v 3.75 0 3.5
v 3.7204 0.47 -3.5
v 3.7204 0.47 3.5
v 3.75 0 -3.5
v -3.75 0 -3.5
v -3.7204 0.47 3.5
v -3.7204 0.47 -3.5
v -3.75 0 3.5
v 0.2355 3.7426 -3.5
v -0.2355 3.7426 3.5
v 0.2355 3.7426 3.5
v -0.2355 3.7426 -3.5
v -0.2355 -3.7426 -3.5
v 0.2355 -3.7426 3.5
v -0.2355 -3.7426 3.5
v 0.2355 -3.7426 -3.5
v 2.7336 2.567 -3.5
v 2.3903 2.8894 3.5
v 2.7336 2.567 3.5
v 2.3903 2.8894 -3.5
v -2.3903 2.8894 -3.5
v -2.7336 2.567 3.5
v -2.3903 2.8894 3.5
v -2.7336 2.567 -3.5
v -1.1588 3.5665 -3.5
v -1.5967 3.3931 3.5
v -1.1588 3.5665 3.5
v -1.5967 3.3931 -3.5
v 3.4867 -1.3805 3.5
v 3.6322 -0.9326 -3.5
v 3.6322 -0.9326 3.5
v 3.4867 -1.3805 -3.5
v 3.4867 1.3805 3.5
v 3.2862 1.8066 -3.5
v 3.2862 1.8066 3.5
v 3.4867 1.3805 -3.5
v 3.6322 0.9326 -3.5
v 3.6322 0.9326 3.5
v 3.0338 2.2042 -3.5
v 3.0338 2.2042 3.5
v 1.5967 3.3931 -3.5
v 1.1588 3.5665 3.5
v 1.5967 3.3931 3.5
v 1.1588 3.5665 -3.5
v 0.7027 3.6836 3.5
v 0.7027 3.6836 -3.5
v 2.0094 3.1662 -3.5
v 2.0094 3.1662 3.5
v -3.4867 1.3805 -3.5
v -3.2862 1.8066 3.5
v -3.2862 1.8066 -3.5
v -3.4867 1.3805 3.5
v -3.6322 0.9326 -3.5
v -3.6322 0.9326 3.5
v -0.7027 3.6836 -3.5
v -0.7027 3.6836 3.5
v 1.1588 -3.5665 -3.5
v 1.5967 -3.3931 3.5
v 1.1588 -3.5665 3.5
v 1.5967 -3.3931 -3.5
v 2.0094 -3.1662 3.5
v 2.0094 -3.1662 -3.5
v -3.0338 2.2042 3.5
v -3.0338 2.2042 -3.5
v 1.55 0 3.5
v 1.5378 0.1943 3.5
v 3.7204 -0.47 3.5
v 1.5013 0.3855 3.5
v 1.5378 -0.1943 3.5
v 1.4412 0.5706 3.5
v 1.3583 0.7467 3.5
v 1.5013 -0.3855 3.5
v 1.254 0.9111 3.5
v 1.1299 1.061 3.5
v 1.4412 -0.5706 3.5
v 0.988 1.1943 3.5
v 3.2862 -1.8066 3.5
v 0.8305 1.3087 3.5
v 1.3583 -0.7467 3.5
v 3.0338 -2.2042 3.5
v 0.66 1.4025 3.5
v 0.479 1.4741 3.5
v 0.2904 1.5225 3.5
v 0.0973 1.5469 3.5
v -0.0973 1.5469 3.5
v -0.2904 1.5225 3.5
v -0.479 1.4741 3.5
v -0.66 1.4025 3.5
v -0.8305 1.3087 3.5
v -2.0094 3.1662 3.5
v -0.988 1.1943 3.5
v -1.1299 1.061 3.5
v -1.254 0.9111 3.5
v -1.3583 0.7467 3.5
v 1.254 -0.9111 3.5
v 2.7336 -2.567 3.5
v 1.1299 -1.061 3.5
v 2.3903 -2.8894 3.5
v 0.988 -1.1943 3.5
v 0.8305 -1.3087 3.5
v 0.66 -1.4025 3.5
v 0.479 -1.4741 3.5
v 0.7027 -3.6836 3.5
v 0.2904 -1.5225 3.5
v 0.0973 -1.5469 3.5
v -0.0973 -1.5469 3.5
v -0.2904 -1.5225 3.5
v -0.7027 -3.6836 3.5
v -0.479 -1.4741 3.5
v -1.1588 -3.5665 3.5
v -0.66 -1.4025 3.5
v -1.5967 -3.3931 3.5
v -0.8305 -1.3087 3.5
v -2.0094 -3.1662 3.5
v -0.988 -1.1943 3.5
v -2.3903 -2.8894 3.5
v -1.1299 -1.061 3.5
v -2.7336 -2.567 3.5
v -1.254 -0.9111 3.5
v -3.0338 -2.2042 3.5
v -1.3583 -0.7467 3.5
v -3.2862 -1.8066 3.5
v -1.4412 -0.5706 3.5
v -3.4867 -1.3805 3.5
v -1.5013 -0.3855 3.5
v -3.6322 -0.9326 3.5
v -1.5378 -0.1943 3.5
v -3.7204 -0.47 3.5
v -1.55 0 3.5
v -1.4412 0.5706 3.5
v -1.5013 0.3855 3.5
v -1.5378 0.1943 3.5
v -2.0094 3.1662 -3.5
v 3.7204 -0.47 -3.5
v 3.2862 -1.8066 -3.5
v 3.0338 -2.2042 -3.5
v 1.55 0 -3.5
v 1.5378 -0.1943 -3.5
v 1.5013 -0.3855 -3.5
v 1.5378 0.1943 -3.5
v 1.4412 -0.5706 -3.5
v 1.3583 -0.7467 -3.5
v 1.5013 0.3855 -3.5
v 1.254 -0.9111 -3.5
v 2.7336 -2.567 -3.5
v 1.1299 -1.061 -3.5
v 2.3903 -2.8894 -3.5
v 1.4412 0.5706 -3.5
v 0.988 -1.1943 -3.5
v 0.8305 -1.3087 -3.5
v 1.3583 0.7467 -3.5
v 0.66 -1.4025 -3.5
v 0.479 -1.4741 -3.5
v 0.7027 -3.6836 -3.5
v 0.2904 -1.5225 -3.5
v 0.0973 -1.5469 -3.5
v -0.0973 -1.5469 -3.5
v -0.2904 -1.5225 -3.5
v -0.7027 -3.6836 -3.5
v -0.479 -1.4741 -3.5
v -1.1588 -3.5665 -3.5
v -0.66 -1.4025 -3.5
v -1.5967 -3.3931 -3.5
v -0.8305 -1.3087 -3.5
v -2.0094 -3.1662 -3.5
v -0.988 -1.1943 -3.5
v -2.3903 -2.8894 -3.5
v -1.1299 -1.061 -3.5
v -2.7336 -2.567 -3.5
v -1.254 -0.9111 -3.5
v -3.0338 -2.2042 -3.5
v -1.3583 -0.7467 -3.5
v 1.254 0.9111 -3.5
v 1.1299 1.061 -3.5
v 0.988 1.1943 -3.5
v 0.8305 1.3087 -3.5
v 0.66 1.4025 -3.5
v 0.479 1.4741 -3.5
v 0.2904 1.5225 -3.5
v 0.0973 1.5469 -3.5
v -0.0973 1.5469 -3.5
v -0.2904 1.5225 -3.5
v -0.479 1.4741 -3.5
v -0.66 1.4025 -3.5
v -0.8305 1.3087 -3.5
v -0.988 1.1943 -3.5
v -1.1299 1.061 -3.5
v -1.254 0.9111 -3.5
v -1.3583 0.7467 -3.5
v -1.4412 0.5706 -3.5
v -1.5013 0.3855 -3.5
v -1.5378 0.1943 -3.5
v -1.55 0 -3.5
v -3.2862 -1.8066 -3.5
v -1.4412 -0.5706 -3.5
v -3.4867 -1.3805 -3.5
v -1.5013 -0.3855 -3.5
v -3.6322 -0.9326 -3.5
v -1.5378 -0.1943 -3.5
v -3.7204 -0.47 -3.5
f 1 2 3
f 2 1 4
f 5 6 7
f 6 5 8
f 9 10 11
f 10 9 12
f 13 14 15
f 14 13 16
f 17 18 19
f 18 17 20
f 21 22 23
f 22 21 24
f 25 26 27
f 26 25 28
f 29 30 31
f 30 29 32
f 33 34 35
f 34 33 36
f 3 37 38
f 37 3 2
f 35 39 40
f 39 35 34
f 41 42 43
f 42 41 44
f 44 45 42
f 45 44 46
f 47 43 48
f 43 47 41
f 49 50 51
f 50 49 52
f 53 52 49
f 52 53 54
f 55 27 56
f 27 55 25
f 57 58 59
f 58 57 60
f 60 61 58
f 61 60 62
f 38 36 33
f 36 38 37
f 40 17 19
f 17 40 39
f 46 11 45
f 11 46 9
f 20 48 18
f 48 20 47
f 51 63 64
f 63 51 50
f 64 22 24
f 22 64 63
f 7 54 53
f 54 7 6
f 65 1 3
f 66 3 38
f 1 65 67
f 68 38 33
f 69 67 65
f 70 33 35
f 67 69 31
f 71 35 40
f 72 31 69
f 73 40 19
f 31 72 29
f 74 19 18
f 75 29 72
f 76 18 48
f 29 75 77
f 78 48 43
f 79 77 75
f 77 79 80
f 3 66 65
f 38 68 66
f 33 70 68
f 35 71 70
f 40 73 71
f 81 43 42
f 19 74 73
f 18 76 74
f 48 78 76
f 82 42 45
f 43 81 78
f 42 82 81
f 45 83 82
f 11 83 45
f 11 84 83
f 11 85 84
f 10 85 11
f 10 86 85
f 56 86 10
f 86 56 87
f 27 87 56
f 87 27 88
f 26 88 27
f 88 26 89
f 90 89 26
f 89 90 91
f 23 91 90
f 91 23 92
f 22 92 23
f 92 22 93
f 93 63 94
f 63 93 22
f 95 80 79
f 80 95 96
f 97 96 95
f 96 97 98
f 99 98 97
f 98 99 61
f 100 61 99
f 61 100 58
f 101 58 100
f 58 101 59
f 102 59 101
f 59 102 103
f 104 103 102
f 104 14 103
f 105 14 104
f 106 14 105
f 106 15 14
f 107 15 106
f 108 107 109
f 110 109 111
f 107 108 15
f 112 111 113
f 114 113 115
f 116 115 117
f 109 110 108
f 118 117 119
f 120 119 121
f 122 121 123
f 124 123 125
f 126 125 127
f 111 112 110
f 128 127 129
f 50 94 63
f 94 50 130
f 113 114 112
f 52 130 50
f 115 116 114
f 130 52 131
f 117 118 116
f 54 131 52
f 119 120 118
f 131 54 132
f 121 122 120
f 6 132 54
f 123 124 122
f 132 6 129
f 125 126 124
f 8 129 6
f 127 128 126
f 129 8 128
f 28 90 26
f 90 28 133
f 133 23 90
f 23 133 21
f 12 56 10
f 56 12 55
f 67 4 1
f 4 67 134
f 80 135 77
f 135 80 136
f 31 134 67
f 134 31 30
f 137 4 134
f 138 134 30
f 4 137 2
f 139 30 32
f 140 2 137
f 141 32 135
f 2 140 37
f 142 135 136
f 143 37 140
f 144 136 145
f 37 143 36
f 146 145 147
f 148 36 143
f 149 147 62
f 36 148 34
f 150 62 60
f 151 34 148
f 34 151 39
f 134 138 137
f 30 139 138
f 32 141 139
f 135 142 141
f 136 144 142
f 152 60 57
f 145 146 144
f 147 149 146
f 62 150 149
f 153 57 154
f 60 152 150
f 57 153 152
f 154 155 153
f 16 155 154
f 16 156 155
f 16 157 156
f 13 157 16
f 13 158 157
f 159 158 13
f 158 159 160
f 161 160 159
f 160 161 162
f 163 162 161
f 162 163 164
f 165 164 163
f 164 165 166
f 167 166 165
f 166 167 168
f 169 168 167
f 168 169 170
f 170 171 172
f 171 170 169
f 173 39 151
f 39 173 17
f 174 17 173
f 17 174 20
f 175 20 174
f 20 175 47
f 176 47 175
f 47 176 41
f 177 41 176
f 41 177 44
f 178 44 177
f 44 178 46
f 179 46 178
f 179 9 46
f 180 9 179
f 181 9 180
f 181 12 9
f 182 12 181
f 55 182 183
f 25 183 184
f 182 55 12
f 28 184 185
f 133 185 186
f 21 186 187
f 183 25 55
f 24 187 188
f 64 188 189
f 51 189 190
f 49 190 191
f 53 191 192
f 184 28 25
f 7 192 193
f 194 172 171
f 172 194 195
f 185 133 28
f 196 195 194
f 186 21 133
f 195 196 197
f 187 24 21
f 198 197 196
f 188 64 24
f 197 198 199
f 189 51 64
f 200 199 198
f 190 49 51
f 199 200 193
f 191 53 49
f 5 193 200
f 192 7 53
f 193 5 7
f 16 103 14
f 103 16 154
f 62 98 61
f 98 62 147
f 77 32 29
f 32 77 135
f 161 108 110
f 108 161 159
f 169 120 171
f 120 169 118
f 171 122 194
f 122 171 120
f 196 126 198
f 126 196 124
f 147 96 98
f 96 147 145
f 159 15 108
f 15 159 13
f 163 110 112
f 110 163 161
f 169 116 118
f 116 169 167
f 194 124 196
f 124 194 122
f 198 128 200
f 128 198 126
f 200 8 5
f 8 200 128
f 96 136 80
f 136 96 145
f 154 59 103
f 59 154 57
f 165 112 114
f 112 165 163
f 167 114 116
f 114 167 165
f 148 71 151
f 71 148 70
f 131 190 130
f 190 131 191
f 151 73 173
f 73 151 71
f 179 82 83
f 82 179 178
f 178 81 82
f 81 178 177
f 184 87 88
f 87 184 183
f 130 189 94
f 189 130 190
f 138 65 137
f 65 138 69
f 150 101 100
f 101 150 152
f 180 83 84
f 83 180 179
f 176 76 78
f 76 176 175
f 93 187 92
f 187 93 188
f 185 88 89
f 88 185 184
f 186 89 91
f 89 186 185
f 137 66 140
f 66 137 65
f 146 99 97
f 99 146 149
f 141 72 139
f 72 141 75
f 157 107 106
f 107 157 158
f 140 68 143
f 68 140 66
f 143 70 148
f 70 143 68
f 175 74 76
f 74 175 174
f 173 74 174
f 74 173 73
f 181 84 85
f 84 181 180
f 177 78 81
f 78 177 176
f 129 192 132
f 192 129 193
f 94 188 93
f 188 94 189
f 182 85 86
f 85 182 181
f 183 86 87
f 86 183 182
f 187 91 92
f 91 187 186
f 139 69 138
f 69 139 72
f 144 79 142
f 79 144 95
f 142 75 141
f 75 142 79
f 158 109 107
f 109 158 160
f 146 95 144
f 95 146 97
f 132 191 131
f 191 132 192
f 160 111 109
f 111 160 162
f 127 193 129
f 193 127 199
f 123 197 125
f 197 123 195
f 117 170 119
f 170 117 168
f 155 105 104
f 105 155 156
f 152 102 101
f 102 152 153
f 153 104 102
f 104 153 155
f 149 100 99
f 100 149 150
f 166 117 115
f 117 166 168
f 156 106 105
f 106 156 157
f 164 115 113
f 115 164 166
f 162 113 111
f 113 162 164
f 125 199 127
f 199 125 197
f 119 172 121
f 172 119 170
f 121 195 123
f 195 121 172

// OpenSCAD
$fn = 50;


difference() {
	union() {
		translate(v = [0, 0, -3.5000000000]) {
			cylinder(h = 7, r = 3.7500000000);
		}
	}
	union() {
		translate(v = [0, 0, -100.0000000000]) {
			cylinder(h = 200, r = 1.5500000000);
		}
	}
}
